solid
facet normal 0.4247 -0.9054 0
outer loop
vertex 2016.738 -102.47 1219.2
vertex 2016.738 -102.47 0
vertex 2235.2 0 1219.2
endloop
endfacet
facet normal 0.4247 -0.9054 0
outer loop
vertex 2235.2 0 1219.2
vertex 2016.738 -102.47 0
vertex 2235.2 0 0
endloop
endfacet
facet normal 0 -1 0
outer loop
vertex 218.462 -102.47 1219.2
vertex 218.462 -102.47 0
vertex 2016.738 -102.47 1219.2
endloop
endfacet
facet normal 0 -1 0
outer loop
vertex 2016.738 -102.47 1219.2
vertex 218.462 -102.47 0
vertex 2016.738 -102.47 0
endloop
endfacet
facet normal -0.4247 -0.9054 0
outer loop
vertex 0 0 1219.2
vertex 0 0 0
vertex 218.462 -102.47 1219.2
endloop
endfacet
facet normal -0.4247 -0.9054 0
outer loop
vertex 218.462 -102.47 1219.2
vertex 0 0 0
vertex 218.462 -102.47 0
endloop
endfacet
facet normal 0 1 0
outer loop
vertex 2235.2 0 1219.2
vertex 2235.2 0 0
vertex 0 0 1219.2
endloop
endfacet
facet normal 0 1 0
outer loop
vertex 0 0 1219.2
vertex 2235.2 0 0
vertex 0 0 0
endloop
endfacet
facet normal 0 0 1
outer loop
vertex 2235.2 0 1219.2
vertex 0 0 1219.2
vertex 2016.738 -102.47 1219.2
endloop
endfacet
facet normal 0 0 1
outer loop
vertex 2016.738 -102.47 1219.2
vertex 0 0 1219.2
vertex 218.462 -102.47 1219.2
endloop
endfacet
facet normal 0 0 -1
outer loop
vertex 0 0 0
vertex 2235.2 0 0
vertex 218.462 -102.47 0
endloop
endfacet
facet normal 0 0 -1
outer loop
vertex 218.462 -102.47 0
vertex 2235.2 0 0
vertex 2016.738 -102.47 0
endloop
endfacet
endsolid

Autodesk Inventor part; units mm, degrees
ref_plane "YZ Plane" through (0, 0, 0) normal (1, 0, 0) x (0, 1, 0)
ref_plane "XZ Plane" through (0, 0, 0) normal (0, 1, 0) x (-1, 0, 0)
ref_plane "XY Plane" through (0, 0, 0) normal (0, 0, 1) x (1, 0, 0)
sketch "Sketch1" plane through (0, 0, 0) normal (0, 0, 1) x (1, 0, 0)
  line L0 (0, 0) -> (2235.2, 0)
  line L1 (0, 0) -> (218.4618, -102.4702)
  line L2 (2235.2, 0) -> (2016.7382, -102.4702)
  line L3 (218.4618, -102.4702) -> (2016.7382, -102.4702)
  line L4 (1016.751, -102.4702) -> (1016.751, -305.6702)
  line L5 (1016.751, -305.6702) -> (1067.551, -305.6702)
  line L6 (1067.551, -305.6702) -> (1067.551, -102.4702)
  dimension "d1" = 2235.2
  dimension "d2" = 241.3
  dimension "d3" = 241.3
  dimension "d7" = 203.2
  dimension "d8" = 50.8
extrude "Extrusion1" add sketch "Sketch1" along normal blind 1219.2 contours L0 L2 L3 L1
properties part number "Bridge"
